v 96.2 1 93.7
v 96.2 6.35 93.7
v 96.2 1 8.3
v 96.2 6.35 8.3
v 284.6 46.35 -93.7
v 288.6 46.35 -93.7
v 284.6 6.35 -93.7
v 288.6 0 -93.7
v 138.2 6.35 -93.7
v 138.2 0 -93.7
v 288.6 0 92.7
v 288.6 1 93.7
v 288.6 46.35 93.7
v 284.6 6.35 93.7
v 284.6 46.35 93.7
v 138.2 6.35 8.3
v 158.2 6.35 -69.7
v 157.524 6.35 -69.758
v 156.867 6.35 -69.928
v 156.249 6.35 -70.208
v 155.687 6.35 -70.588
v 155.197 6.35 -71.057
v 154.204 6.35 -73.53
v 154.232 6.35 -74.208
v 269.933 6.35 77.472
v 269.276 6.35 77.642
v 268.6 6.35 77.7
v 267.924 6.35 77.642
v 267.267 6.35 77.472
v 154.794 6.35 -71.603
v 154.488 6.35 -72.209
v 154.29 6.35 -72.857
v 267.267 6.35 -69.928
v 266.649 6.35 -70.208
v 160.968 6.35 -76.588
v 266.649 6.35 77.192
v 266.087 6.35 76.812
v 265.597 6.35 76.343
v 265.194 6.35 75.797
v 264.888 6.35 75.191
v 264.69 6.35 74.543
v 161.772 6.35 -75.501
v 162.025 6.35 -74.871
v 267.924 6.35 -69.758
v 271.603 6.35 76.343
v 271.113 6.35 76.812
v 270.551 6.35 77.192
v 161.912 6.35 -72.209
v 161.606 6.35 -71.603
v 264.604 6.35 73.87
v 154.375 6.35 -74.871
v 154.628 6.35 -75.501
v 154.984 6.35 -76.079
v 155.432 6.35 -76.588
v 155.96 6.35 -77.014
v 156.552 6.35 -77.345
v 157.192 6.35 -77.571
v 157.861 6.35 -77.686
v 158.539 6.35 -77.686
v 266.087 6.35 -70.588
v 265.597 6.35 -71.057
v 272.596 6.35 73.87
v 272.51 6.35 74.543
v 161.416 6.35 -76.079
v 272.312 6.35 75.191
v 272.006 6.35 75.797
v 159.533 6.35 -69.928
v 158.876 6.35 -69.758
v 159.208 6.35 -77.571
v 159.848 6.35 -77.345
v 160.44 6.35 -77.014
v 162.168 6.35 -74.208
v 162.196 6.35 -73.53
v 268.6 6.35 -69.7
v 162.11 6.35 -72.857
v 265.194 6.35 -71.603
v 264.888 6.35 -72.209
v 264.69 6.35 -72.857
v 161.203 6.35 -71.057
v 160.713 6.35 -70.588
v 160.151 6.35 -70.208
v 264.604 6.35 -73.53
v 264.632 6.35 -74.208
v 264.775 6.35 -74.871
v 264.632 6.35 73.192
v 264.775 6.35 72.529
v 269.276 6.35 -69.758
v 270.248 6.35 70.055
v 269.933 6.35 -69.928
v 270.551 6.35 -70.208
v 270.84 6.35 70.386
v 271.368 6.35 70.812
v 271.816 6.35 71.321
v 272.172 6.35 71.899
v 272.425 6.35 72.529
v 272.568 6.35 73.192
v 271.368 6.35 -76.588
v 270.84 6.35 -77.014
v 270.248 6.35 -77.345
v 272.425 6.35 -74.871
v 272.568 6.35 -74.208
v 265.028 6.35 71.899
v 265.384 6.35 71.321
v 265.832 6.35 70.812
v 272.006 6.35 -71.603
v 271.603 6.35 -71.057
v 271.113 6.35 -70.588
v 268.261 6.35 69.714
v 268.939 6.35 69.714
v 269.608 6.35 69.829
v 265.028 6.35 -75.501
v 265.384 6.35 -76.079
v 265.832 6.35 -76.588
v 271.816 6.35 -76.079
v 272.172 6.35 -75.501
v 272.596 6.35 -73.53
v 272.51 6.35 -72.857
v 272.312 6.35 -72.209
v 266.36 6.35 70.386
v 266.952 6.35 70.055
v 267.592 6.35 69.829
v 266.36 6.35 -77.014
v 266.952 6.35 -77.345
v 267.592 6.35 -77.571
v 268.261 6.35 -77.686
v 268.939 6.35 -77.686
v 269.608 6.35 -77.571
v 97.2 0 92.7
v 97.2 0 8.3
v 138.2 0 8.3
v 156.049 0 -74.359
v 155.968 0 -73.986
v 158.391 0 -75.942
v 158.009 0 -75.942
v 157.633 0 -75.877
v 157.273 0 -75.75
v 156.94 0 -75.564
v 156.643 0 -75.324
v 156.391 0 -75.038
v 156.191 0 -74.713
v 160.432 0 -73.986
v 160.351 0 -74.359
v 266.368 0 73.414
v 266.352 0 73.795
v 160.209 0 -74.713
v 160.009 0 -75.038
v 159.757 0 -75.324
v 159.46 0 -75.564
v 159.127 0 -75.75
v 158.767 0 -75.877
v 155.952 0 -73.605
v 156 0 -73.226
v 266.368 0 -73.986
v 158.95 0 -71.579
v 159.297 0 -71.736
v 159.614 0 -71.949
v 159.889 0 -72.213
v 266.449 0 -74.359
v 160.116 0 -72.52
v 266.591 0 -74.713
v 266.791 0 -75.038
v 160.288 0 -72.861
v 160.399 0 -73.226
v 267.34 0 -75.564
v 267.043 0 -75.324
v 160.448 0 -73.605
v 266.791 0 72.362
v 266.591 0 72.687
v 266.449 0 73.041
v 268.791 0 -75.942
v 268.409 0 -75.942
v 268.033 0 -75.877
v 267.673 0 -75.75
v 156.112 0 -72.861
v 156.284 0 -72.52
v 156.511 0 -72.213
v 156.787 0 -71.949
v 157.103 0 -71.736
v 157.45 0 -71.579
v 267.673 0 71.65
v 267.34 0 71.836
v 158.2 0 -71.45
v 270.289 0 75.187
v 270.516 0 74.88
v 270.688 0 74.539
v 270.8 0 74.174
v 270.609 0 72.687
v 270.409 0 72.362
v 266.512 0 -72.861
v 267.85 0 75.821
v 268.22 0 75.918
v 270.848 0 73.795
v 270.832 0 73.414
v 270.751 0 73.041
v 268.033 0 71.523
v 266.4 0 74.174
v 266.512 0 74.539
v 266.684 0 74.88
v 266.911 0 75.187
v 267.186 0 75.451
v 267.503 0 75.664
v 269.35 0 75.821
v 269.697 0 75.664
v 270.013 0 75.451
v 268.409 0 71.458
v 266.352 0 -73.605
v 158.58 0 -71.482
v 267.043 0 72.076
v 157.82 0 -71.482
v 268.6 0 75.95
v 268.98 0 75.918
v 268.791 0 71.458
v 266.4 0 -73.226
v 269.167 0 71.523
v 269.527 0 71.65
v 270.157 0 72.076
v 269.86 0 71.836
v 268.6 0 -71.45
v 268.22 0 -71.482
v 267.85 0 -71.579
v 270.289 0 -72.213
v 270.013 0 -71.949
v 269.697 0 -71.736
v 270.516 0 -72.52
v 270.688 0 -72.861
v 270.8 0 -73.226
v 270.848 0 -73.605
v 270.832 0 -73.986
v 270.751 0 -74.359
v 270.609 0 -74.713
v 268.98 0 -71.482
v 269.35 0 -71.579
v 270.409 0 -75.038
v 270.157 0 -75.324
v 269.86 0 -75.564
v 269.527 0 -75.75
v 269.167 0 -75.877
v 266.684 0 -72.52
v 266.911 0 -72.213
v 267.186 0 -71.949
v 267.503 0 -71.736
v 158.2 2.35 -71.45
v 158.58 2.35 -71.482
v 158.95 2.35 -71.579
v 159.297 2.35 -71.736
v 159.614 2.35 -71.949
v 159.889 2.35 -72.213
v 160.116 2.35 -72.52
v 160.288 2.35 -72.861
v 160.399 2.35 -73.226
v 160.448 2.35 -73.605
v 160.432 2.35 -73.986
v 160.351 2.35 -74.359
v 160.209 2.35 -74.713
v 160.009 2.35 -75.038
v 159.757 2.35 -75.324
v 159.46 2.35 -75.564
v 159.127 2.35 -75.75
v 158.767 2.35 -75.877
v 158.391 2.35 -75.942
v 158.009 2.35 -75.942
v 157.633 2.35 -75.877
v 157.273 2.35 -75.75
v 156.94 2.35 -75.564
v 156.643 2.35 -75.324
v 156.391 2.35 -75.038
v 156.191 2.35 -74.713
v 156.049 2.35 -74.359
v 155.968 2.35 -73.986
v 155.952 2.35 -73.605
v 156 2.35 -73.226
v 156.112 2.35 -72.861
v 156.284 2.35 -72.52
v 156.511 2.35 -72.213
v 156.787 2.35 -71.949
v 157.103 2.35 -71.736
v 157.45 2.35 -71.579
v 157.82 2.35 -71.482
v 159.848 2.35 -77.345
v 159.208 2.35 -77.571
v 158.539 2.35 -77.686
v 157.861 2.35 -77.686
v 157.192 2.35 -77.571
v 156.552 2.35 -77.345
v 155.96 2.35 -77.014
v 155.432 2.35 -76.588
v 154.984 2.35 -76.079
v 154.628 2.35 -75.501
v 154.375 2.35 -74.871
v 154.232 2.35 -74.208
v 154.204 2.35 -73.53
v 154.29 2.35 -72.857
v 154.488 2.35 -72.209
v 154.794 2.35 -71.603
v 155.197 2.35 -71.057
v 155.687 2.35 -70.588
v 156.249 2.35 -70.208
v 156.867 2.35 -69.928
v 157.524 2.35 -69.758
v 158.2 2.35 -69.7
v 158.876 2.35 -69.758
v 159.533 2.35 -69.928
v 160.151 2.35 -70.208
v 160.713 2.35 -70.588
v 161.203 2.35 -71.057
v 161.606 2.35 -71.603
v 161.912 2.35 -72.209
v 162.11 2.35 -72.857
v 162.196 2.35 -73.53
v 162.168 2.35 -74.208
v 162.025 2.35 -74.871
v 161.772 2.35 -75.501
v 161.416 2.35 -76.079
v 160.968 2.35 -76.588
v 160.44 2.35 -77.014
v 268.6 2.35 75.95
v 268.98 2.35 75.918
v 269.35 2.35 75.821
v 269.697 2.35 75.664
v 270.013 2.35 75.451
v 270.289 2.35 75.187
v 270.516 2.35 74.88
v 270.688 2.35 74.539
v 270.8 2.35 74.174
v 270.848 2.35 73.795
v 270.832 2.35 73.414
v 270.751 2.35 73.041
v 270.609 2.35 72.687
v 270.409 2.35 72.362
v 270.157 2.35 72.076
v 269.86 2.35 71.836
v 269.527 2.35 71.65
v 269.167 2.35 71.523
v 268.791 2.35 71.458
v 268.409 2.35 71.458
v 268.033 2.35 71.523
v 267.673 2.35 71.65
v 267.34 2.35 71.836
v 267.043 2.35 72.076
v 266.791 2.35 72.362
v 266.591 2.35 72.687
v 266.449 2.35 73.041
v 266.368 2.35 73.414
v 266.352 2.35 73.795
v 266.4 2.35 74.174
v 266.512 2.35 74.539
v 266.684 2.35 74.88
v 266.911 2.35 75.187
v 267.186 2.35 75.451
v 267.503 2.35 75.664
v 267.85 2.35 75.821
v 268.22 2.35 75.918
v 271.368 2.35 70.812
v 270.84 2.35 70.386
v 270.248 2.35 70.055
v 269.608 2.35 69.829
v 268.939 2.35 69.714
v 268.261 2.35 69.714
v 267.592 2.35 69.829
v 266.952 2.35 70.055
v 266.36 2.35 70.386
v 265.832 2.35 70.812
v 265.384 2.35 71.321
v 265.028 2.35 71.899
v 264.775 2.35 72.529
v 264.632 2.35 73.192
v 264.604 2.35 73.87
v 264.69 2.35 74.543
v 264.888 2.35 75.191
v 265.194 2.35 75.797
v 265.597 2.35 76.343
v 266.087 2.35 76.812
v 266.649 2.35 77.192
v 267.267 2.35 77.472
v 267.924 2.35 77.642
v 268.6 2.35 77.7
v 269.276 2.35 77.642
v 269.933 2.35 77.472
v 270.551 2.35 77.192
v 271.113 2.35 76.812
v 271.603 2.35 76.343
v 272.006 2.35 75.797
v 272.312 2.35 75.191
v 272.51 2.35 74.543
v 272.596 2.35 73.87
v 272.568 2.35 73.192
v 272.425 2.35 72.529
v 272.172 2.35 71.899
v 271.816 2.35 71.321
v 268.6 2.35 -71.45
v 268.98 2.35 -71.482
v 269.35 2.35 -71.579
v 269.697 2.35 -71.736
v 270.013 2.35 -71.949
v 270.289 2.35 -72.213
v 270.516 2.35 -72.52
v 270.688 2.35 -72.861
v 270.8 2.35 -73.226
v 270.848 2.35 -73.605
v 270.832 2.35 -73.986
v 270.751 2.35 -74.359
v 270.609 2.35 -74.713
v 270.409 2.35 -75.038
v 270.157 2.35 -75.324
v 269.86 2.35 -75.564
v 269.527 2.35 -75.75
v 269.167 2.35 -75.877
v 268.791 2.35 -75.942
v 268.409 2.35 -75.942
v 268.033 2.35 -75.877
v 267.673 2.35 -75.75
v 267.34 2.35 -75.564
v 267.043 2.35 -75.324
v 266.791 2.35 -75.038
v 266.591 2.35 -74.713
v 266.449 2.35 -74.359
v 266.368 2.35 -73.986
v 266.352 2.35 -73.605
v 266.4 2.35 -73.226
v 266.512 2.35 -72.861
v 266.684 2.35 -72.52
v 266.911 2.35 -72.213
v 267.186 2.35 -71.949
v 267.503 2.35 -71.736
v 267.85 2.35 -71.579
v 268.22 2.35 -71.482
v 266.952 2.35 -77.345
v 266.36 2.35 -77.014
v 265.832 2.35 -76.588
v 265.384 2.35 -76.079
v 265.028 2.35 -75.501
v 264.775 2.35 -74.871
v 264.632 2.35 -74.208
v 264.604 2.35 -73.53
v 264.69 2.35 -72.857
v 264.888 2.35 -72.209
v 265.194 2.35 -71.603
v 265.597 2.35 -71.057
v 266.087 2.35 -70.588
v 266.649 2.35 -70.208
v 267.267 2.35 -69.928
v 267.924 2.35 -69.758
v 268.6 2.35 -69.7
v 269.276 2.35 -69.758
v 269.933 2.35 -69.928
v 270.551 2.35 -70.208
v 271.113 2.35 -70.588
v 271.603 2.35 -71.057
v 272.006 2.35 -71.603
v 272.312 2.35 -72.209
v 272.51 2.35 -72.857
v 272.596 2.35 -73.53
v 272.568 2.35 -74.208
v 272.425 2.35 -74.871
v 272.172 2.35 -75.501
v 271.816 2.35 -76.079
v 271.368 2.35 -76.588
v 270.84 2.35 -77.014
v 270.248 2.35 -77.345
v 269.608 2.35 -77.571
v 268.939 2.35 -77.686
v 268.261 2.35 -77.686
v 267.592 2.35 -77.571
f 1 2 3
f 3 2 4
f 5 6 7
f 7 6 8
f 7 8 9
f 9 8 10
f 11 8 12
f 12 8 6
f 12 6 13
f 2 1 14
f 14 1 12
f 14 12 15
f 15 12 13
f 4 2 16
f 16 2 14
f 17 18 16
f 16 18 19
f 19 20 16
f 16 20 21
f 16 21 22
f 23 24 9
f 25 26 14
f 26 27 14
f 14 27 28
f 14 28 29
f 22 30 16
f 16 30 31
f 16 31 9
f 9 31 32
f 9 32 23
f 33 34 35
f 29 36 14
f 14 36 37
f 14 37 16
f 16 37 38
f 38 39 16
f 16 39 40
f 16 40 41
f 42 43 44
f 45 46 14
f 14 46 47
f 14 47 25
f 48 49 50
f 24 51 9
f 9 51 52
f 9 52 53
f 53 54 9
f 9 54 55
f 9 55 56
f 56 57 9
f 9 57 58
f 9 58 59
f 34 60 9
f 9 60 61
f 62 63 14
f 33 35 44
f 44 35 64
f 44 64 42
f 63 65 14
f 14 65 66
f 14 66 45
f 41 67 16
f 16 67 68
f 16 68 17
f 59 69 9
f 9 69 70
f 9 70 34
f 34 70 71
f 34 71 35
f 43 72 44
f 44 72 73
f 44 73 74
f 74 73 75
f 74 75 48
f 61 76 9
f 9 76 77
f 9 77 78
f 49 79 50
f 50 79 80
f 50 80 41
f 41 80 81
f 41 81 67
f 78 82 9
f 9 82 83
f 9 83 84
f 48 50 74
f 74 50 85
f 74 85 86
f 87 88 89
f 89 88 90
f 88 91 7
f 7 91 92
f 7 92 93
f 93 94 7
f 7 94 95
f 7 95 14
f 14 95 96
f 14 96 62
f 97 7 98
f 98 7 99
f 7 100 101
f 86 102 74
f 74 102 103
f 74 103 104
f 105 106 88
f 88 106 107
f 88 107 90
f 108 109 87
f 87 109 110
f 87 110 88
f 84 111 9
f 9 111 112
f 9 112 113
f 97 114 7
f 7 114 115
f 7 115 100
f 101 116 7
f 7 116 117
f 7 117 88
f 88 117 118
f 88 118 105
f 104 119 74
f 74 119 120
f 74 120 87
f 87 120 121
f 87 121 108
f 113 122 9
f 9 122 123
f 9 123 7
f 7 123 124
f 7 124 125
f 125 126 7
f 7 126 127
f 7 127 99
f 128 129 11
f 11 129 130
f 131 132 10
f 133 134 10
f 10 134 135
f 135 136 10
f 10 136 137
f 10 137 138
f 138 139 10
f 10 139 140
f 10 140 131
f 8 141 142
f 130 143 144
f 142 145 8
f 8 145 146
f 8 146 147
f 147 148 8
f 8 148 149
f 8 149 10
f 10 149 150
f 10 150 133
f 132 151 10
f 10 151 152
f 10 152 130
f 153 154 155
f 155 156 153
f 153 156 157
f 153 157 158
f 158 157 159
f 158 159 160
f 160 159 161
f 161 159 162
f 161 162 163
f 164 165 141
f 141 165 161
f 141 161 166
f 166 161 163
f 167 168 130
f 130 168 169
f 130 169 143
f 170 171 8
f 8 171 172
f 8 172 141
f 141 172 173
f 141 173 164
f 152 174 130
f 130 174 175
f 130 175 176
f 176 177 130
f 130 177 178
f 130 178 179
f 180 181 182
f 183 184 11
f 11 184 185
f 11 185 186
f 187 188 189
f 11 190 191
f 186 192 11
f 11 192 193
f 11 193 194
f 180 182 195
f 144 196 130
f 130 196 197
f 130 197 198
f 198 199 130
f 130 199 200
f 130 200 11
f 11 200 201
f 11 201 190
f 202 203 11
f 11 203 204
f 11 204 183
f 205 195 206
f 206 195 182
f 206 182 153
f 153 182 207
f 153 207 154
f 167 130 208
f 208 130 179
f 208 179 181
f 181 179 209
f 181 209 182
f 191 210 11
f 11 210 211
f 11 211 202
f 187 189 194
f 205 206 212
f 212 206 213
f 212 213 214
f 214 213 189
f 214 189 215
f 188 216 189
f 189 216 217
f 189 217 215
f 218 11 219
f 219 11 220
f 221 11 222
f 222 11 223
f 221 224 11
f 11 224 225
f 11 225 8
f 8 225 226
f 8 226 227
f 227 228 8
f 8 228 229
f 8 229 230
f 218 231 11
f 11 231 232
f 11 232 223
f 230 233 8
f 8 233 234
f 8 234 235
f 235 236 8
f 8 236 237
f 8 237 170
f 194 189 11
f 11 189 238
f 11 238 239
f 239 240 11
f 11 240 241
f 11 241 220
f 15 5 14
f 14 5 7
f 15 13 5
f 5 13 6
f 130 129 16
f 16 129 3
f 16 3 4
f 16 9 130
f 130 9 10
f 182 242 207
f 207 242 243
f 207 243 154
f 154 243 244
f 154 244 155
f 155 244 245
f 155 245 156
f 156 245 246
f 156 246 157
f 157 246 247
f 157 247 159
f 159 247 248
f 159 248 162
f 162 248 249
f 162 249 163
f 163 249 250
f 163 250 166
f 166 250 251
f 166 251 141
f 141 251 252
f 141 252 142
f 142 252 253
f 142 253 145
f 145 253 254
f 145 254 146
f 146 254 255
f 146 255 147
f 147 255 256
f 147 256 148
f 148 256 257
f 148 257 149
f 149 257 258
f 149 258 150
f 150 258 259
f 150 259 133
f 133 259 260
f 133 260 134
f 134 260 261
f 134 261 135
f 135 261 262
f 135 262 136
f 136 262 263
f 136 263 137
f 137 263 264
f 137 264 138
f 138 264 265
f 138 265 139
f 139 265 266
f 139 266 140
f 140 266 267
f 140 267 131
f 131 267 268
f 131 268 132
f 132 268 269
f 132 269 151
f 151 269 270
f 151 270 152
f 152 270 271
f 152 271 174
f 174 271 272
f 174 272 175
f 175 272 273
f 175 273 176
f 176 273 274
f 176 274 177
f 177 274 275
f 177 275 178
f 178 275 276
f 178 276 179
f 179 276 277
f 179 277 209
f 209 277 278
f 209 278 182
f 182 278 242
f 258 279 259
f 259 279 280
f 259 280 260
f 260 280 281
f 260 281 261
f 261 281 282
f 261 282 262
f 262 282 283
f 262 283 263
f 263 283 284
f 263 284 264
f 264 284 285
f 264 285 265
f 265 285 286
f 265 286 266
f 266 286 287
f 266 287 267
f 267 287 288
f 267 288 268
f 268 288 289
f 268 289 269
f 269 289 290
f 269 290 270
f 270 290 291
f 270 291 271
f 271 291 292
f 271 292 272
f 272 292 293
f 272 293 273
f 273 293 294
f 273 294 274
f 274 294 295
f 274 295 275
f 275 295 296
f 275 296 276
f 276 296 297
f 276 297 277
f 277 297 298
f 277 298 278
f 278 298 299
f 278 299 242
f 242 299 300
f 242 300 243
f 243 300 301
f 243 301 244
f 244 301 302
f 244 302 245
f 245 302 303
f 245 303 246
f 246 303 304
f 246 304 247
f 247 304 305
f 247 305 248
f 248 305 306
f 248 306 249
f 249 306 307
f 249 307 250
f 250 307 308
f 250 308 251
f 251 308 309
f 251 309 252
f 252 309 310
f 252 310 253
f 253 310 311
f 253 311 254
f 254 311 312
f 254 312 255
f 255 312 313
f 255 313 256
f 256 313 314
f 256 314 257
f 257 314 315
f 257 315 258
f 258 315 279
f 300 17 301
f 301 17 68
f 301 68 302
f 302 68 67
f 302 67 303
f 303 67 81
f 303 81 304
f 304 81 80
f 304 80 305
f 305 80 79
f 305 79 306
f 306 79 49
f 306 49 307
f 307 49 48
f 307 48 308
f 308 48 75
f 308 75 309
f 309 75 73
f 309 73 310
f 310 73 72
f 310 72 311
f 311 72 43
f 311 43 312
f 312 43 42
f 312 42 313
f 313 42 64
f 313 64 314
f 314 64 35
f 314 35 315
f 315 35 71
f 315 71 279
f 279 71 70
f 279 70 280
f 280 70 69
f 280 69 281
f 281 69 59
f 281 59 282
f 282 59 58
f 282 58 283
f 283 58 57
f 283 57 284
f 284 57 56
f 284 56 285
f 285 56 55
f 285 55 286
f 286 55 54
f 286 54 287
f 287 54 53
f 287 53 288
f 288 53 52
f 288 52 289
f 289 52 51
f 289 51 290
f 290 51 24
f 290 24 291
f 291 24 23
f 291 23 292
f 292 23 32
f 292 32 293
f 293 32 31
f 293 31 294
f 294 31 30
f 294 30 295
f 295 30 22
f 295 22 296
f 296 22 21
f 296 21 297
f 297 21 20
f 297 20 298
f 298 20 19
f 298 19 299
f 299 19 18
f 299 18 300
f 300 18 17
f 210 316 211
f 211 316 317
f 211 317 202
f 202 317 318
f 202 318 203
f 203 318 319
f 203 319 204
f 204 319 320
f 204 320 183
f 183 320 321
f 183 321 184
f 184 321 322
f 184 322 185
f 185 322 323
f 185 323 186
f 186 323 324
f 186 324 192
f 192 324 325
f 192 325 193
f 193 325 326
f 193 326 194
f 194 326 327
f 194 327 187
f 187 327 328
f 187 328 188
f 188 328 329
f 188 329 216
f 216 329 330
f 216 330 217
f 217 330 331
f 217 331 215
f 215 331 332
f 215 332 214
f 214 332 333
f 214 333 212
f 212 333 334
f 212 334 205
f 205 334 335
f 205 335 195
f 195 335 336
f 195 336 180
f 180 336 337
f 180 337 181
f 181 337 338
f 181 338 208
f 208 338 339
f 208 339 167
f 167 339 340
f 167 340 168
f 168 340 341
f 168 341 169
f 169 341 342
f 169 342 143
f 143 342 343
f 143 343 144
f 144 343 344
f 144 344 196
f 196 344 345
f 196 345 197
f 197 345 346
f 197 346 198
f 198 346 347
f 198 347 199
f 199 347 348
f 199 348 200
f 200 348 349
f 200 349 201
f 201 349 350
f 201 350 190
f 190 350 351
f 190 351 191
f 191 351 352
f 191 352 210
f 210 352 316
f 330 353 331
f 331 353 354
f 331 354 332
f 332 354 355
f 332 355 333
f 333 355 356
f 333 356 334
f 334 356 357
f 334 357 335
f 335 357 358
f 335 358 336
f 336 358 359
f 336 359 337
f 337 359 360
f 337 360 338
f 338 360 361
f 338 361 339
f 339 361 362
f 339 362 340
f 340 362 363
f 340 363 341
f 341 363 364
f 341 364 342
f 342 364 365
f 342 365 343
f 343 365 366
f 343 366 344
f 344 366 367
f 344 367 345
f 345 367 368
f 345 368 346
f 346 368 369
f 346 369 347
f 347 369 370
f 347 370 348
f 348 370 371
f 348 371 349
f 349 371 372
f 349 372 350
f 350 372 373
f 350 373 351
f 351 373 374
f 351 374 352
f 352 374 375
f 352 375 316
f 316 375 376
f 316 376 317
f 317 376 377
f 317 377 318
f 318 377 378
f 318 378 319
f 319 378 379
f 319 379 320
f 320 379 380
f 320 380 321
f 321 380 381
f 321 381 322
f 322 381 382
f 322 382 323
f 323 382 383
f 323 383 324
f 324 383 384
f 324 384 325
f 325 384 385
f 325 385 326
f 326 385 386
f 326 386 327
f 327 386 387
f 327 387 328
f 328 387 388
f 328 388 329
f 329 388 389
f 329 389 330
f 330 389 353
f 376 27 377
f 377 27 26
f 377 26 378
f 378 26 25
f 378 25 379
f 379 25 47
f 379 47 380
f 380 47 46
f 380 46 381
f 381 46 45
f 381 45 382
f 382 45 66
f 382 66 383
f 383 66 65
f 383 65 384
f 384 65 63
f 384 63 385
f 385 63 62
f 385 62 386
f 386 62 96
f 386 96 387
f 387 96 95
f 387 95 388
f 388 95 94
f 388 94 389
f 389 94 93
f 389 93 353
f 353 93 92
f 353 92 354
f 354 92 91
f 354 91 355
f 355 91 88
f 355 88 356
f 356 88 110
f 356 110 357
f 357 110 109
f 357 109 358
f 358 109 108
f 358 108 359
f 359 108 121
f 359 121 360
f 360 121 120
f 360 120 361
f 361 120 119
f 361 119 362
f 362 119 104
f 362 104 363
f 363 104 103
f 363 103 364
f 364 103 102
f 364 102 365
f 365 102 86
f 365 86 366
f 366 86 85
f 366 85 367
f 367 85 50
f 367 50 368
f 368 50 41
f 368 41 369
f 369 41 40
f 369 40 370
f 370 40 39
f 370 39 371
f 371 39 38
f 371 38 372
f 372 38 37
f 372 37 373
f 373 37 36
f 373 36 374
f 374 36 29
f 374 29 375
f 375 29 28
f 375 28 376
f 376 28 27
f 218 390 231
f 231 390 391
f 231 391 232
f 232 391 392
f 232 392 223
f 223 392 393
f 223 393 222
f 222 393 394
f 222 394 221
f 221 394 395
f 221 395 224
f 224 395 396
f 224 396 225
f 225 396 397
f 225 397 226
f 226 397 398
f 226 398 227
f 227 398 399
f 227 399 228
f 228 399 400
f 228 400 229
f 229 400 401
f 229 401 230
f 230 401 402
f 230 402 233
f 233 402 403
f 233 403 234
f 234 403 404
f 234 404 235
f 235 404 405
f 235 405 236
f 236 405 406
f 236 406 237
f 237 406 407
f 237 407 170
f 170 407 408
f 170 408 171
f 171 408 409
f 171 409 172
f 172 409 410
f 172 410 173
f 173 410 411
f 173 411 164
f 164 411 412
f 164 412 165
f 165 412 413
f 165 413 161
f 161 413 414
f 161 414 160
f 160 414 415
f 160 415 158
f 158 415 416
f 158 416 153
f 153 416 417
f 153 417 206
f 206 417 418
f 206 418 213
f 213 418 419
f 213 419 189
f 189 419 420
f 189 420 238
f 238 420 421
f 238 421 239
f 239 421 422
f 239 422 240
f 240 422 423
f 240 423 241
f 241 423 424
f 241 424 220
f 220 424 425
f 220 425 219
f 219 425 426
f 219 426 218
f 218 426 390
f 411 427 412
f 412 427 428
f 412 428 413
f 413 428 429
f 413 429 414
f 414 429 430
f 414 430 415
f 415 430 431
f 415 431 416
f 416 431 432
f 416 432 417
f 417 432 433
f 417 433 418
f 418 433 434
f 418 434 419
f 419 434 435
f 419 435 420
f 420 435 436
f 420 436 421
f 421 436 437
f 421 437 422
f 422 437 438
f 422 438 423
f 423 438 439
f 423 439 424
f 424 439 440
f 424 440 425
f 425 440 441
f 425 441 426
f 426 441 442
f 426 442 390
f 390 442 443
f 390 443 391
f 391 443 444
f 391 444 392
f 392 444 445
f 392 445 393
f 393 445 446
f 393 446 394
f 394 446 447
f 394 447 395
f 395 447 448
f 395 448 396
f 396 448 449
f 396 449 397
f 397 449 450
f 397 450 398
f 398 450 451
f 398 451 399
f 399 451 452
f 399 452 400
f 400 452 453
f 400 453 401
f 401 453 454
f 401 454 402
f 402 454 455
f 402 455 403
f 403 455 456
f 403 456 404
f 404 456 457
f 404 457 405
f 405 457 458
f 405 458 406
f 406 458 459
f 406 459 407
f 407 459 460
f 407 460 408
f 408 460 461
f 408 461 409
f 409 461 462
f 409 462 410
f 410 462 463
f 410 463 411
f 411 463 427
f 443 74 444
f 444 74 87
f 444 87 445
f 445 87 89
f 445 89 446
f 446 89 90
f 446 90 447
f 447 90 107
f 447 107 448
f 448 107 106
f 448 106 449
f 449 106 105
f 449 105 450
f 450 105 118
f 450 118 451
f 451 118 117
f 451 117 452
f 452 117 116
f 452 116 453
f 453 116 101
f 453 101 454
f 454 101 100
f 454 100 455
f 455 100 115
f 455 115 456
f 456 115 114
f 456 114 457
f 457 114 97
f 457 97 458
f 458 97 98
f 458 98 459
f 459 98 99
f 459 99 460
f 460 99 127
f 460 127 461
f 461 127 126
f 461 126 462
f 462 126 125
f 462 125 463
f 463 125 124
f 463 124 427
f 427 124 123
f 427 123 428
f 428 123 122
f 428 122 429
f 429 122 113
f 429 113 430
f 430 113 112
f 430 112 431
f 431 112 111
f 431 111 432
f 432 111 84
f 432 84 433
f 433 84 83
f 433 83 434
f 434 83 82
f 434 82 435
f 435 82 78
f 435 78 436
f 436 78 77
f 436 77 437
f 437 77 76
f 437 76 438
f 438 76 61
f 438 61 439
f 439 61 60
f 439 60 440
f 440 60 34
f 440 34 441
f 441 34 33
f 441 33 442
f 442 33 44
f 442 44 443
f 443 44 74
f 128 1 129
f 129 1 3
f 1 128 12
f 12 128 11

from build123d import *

# Parameters (mm, degrees)
SKETCH1_W                      = 192.4
SKETCH1_H                      = 187.4
BOSS_EXTRUDE1_DEPTH            = 6.35
BOSS_EXTRUDE2_DEPTH            = 40
CUT_EXTRUDE1_REACH             = 142.122
SKETCH4_W                      = 42
SKETCH4_H                      = 102
CBORE_FOR_M4_SHCS1_D           = 4.5
CBORE_FOR_M4_SHCS1_CBORE_D     = 8
CBORE_FOR_M4_SHCS1_CBORE_DEPTH = 4
CHAMFER1_SIZE                  = 1


with BuildPart() as part:
    # Sketch1 → Boss-Extrude1 (new body)
    with BuildSketch(Plane(origin=(0, 0, 0), x_dir=(1, 0, 0), z_dir=(0, 1, 0))):
        Rectangle(SKETCH1_W, SKETCH1_H)
    extrude(amount=BOSS_EXTRUDE1_DEPTH)

    # Sketch2 → Boss-Extrude2 (add)
    with BuildSketch(Plane(origin=(0, 6.35, 0), x_dir=(1, 0, 0), z_dir=(0, 1, 0))):
        Polygon((-92.2, 89.7), (-92.2, -89.7), (-92.2, -93.7), (-96.2, -93.7), (-96.2, 93.7), (-92.2, 93.7), align=None)
    extrude(amount=BOSS_EXTRUDE2_DEPTH)

    # Sketch4 → Cut-Extrude1 (cut, up to next)
    with BuildSketch(Plane(origin=(0, 6.35, 0), x_dir=(1, 0, 0), z_dir=(0, 1, 0)), mode=Mode.PRIVATE) as cut_extrude1_sk1:
        with Locations((75.2, 42.7)):
            Rectangle(SKETCH4_W, SKETCH4_H)
    cut_extrude1_tool1 = extrude(cut_extrude1_sk1.sketch, amount=-CUT_EXTRUDE1_REACH, mode=Mode.PRIVATE) & part.part
    add(cut_extrude1_tool1.solids().sort_by_distance((75.2, 6.35, -42.7))[0], mode=Mode.SUBTRACT)

    # CBORE for M4 SHCS1 (through all)
    with Locations(Plane(origin=(0, 6.35, 0), x_dir=(1, 0, 0), z_dir=(0, 1, 0))):
        with Locations((34.2, 73.7), (-76.2, 73.7), (-76.2, -73.7)):
            CounterBoreHole(CBORE_FOR_M4_SHCS1_D / 2, CBORE_FOR_M4_SHCS1_CBORE_D / 2, CBORE_FOR_M4_SHCS1_CBORE_DEPTH)


with BuildPart() as body_2:
    # Mirror1: mirrored copy
    add(part.part.mirror(Plane(origin=(96.2, 6.35, -93.7), x_dir=(0, 0, 1), z_dir=(-1, 0, 0))))

    # Chamfer1
    chamfer1_edges = [body_2.edges().sort_by_distance(p)[0] for p in [
        (192.4, 0, 93.7),
        (96.2, 0, 51),
    ]]
    chamfer(chamfer1_edges, length=CHAMFER1_SIZE)


solid = body_2.part
